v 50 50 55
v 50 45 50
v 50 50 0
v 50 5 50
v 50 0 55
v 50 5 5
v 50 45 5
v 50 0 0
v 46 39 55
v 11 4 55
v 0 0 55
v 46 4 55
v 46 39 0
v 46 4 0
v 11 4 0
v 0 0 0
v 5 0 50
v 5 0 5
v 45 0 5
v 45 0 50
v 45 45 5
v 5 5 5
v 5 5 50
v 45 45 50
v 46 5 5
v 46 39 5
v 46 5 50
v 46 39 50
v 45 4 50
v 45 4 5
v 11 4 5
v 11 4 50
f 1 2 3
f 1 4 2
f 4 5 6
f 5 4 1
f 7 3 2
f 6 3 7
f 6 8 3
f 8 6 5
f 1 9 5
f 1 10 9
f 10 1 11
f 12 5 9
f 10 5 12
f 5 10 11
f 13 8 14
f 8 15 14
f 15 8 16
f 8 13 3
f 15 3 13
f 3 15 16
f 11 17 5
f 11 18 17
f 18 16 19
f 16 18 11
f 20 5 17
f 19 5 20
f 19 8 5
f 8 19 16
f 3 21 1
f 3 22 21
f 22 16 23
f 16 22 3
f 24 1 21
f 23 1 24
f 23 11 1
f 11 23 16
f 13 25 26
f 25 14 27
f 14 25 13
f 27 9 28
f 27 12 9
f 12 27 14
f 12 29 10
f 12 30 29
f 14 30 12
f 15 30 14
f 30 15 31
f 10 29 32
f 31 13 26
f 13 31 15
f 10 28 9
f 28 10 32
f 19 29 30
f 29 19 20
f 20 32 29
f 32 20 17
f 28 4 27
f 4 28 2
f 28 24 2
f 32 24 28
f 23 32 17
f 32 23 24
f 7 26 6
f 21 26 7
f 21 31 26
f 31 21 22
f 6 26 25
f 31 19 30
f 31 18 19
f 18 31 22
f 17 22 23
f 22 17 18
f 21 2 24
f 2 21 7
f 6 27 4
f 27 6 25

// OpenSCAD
module triangle(){
    difference(){
        cube([50,50,55]);
        rotate([0,0,45]) cube([80,80,65]);
    }
}
difference () {
  triangle();
  translate([11,4,0]) scale([0.7,0.7,10]) triangle();
  translate([5,-1,5]) cube([40,50,45]);
  translate([-1,5,5]) cube([55,40,45]);
}
